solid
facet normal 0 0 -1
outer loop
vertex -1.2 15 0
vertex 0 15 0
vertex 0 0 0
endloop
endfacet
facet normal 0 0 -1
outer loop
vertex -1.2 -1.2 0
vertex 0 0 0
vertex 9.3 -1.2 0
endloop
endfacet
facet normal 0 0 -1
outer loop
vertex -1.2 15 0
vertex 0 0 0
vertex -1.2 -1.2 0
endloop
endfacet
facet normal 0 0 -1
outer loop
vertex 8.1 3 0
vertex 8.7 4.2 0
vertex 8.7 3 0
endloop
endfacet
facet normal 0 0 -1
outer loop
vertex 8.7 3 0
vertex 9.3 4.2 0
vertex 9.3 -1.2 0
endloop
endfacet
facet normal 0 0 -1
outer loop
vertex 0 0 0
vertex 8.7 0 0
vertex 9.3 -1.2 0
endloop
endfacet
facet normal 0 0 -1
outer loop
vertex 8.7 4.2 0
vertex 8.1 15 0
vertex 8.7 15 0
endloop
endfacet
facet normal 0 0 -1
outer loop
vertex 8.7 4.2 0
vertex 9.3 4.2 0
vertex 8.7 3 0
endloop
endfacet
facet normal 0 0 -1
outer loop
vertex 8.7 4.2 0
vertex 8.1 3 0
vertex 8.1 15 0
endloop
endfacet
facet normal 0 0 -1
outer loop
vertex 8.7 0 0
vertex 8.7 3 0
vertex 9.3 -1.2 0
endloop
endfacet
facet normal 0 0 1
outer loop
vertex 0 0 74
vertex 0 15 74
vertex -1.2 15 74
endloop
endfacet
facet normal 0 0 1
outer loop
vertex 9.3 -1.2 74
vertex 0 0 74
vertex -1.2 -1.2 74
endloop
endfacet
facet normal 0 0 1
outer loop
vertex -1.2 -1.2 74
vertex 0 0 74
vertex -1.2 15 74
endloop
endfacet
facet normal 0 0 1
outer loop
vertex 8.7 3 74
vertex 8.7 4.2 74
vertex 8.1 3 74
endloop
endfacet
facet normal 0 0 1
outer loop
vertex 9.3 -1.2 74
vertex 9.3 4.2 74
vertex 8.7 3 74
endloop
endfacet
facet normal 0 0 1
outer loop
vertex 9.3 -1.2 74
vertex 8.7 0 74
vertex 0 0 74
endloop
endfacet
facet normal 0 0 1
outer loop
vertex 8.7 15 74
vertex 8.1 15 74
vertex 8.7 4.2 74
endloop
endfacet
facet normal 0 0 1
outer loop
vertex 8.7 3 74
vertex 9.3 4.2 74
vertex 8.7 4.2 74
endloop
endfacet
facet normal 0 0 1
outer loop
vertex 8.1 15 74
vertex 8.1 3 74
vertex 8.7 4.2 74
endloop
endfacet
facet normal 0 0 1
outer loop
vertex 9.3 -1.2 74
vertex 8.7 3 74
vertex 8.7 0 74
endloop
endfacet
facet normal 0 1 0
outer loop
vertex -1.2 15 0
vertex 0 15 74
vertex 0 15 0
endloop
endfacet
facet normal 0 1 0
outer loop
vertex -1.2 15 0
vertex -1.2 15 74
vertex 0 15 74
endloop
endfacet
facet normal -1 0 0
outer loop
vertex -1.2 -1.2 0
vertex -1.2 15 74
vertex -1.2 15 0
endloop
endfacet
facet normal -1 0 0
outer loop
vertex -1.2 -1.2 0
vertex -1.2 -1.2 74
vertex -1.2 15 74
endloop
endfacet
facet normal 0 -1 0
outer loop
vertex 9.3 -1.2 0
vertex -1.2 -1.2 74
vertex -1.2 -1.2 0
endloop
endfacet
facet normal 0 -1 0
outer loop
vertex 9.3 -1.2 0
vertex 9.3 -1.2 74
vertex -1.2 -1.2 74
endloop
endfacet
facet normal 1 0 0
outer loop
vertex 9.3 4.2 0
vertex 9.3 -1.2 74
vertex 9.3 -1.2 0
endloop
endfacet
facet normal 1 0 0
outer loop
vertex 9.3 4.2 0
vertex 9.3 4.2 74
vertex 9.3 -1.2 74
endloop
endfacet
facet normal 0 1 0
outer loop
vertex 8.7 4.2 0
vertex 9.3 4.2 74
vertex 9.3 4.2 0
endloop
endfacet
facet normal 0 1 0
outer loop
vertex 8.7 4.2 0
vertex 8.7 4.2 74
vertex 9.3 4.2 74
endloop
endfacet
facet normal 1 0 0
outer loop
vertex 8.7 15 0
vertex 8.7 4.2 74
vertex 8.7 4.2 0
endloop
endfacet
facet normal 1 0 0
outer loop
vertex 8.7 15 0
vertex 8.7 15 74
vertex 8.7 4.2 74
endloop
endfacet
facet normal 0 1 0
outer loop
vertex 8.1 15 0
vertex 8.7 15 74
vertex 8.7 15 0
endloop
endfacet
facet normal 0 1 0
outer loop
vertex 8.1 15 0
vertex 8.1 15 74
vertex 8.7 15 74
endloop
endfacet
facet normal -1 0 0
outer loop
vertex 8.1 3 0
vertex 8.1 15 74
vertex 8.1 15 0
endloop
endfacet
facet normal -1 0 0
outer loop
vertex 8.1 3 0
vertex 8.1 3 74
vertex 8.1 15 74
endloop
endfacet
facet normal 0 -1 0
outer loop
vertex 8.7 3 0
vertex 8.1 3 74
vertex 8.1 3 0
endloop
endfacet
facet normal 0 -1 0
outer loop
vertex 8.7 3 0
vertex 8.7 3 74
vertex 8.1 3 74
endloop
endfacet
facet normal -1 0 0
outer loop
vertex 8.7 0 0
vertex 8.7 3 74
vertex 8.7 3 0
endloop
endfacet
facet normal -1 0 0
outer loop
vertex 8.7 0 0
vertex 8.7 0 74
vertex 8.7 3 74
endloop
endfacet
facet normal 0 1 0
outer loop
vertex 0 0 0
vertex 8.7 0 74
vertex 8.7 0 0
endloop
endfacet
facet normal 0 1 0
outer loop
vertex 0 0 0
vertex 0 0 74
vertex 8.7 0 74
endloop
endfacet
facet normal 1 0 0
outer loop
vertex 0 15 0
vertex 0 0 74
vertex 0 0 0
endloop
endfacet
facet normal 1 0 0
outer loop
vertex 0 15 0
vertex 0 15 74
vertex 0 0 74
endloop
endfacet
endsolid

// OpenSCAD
// -*- mode: SCAD ; c-file-style: "ellemtel" ; coding: utf-8 -*-
//
// NN
//
// © 2018–2019 Roland Sieker <ospalh@gmail.com>
// Licence: CC-BY-SA 4.0

/* [Global] */

// … to preview. You will get all parts as separate STLs when you click “Create Thing”.
part = "s"; // [s: Set, a: Part A, b: Part B]

// Set this to “render” and click on “Create Thing” when done with the setup.
preview = 1; // [0:render, 1:preview]

/* [Sizes] */

// Breite des ganzen Dings
breite = 74;  // [1:0.1:40]

// Dicke des Deckels
dicke = 8.1;  // [1:0.1:40]

// Höhe des Randes
hoehe = 15;  // [1:0.1:40]


/* [Hidden] */

// Done with the customizer

// *******************************************************
// Extra parameters. These can be changed reasonably safely.

k = 0.6;
m=3;


w = 1.8;  // Wall width
p = 1.2;  // Bottom, top plate hight
c = 0.4;  // Clearance
angle = 60; // Overhangs much below 60° are a problem for me

// *******************************************************
// Some shortcuts. These shouldn’t be changed


module kmirror(maxis=[1, 0, 0])
{
   // Keep *and* mirror an object. Standard is left and right mirroring.
   children();
   mirror(maxis)
   {
      children();
   }
}

tau = 2 * PI;  // π is still wrong. τ = circumference / r

xy_factor = 1/tan(angle);
// To get from a hight to a horizontal width inclined correctly
z_factor = tan(angle);  // The other way around


some_distance = 50;
ms = 0.01;  // Muggeseggele.

// fn for differently sized objects and fs, fa; all for preview or rendering.
pna = 40;
pnb = 15;
pa = 5;
ps = 1;
rna = 180;
rnb = 30;
ra = 2;
rs = 0.25;
function na() = (preview) ? pna : rna;
function nb() = (preview) ? pnb : rnb;
$fs = (preview) ? ps : rs;
$fa = (preview) ? pa : ra;

// *******************************************************
// End setup



// *******************************************************
// Generate the parts

print_part();


if ("s" == part)
{
   preview_parts();
}

if ("st" == part)
{
   // Use "st" during development
   stack_parts();
}

module print_part()
{
   if ("a" == part)
   {
      part_a();
   }
}

module preview_parts()
{
   part_a();
}

module stack_parts()
{
   // intersection()
   {
      color("yellow")
      {
         part_a();
      }
   }
}

// *******************************************************
// Code for the parts themselves


module part_a()
{

   linear_extrude(breite)
   {
      plan_a();
   }
}


module plan_a()
{
   difference()
   {
      translate([-p, -p])
      {
         square([dicke+p + p/2 + k, hoehe+p]);
      }
      square([dicke, hoehe+10]);
      square([dicke + k, m]);
      translate([dicke+k, m+p])
      {
         square([dicke, hoehe]);
      }
   }

}
